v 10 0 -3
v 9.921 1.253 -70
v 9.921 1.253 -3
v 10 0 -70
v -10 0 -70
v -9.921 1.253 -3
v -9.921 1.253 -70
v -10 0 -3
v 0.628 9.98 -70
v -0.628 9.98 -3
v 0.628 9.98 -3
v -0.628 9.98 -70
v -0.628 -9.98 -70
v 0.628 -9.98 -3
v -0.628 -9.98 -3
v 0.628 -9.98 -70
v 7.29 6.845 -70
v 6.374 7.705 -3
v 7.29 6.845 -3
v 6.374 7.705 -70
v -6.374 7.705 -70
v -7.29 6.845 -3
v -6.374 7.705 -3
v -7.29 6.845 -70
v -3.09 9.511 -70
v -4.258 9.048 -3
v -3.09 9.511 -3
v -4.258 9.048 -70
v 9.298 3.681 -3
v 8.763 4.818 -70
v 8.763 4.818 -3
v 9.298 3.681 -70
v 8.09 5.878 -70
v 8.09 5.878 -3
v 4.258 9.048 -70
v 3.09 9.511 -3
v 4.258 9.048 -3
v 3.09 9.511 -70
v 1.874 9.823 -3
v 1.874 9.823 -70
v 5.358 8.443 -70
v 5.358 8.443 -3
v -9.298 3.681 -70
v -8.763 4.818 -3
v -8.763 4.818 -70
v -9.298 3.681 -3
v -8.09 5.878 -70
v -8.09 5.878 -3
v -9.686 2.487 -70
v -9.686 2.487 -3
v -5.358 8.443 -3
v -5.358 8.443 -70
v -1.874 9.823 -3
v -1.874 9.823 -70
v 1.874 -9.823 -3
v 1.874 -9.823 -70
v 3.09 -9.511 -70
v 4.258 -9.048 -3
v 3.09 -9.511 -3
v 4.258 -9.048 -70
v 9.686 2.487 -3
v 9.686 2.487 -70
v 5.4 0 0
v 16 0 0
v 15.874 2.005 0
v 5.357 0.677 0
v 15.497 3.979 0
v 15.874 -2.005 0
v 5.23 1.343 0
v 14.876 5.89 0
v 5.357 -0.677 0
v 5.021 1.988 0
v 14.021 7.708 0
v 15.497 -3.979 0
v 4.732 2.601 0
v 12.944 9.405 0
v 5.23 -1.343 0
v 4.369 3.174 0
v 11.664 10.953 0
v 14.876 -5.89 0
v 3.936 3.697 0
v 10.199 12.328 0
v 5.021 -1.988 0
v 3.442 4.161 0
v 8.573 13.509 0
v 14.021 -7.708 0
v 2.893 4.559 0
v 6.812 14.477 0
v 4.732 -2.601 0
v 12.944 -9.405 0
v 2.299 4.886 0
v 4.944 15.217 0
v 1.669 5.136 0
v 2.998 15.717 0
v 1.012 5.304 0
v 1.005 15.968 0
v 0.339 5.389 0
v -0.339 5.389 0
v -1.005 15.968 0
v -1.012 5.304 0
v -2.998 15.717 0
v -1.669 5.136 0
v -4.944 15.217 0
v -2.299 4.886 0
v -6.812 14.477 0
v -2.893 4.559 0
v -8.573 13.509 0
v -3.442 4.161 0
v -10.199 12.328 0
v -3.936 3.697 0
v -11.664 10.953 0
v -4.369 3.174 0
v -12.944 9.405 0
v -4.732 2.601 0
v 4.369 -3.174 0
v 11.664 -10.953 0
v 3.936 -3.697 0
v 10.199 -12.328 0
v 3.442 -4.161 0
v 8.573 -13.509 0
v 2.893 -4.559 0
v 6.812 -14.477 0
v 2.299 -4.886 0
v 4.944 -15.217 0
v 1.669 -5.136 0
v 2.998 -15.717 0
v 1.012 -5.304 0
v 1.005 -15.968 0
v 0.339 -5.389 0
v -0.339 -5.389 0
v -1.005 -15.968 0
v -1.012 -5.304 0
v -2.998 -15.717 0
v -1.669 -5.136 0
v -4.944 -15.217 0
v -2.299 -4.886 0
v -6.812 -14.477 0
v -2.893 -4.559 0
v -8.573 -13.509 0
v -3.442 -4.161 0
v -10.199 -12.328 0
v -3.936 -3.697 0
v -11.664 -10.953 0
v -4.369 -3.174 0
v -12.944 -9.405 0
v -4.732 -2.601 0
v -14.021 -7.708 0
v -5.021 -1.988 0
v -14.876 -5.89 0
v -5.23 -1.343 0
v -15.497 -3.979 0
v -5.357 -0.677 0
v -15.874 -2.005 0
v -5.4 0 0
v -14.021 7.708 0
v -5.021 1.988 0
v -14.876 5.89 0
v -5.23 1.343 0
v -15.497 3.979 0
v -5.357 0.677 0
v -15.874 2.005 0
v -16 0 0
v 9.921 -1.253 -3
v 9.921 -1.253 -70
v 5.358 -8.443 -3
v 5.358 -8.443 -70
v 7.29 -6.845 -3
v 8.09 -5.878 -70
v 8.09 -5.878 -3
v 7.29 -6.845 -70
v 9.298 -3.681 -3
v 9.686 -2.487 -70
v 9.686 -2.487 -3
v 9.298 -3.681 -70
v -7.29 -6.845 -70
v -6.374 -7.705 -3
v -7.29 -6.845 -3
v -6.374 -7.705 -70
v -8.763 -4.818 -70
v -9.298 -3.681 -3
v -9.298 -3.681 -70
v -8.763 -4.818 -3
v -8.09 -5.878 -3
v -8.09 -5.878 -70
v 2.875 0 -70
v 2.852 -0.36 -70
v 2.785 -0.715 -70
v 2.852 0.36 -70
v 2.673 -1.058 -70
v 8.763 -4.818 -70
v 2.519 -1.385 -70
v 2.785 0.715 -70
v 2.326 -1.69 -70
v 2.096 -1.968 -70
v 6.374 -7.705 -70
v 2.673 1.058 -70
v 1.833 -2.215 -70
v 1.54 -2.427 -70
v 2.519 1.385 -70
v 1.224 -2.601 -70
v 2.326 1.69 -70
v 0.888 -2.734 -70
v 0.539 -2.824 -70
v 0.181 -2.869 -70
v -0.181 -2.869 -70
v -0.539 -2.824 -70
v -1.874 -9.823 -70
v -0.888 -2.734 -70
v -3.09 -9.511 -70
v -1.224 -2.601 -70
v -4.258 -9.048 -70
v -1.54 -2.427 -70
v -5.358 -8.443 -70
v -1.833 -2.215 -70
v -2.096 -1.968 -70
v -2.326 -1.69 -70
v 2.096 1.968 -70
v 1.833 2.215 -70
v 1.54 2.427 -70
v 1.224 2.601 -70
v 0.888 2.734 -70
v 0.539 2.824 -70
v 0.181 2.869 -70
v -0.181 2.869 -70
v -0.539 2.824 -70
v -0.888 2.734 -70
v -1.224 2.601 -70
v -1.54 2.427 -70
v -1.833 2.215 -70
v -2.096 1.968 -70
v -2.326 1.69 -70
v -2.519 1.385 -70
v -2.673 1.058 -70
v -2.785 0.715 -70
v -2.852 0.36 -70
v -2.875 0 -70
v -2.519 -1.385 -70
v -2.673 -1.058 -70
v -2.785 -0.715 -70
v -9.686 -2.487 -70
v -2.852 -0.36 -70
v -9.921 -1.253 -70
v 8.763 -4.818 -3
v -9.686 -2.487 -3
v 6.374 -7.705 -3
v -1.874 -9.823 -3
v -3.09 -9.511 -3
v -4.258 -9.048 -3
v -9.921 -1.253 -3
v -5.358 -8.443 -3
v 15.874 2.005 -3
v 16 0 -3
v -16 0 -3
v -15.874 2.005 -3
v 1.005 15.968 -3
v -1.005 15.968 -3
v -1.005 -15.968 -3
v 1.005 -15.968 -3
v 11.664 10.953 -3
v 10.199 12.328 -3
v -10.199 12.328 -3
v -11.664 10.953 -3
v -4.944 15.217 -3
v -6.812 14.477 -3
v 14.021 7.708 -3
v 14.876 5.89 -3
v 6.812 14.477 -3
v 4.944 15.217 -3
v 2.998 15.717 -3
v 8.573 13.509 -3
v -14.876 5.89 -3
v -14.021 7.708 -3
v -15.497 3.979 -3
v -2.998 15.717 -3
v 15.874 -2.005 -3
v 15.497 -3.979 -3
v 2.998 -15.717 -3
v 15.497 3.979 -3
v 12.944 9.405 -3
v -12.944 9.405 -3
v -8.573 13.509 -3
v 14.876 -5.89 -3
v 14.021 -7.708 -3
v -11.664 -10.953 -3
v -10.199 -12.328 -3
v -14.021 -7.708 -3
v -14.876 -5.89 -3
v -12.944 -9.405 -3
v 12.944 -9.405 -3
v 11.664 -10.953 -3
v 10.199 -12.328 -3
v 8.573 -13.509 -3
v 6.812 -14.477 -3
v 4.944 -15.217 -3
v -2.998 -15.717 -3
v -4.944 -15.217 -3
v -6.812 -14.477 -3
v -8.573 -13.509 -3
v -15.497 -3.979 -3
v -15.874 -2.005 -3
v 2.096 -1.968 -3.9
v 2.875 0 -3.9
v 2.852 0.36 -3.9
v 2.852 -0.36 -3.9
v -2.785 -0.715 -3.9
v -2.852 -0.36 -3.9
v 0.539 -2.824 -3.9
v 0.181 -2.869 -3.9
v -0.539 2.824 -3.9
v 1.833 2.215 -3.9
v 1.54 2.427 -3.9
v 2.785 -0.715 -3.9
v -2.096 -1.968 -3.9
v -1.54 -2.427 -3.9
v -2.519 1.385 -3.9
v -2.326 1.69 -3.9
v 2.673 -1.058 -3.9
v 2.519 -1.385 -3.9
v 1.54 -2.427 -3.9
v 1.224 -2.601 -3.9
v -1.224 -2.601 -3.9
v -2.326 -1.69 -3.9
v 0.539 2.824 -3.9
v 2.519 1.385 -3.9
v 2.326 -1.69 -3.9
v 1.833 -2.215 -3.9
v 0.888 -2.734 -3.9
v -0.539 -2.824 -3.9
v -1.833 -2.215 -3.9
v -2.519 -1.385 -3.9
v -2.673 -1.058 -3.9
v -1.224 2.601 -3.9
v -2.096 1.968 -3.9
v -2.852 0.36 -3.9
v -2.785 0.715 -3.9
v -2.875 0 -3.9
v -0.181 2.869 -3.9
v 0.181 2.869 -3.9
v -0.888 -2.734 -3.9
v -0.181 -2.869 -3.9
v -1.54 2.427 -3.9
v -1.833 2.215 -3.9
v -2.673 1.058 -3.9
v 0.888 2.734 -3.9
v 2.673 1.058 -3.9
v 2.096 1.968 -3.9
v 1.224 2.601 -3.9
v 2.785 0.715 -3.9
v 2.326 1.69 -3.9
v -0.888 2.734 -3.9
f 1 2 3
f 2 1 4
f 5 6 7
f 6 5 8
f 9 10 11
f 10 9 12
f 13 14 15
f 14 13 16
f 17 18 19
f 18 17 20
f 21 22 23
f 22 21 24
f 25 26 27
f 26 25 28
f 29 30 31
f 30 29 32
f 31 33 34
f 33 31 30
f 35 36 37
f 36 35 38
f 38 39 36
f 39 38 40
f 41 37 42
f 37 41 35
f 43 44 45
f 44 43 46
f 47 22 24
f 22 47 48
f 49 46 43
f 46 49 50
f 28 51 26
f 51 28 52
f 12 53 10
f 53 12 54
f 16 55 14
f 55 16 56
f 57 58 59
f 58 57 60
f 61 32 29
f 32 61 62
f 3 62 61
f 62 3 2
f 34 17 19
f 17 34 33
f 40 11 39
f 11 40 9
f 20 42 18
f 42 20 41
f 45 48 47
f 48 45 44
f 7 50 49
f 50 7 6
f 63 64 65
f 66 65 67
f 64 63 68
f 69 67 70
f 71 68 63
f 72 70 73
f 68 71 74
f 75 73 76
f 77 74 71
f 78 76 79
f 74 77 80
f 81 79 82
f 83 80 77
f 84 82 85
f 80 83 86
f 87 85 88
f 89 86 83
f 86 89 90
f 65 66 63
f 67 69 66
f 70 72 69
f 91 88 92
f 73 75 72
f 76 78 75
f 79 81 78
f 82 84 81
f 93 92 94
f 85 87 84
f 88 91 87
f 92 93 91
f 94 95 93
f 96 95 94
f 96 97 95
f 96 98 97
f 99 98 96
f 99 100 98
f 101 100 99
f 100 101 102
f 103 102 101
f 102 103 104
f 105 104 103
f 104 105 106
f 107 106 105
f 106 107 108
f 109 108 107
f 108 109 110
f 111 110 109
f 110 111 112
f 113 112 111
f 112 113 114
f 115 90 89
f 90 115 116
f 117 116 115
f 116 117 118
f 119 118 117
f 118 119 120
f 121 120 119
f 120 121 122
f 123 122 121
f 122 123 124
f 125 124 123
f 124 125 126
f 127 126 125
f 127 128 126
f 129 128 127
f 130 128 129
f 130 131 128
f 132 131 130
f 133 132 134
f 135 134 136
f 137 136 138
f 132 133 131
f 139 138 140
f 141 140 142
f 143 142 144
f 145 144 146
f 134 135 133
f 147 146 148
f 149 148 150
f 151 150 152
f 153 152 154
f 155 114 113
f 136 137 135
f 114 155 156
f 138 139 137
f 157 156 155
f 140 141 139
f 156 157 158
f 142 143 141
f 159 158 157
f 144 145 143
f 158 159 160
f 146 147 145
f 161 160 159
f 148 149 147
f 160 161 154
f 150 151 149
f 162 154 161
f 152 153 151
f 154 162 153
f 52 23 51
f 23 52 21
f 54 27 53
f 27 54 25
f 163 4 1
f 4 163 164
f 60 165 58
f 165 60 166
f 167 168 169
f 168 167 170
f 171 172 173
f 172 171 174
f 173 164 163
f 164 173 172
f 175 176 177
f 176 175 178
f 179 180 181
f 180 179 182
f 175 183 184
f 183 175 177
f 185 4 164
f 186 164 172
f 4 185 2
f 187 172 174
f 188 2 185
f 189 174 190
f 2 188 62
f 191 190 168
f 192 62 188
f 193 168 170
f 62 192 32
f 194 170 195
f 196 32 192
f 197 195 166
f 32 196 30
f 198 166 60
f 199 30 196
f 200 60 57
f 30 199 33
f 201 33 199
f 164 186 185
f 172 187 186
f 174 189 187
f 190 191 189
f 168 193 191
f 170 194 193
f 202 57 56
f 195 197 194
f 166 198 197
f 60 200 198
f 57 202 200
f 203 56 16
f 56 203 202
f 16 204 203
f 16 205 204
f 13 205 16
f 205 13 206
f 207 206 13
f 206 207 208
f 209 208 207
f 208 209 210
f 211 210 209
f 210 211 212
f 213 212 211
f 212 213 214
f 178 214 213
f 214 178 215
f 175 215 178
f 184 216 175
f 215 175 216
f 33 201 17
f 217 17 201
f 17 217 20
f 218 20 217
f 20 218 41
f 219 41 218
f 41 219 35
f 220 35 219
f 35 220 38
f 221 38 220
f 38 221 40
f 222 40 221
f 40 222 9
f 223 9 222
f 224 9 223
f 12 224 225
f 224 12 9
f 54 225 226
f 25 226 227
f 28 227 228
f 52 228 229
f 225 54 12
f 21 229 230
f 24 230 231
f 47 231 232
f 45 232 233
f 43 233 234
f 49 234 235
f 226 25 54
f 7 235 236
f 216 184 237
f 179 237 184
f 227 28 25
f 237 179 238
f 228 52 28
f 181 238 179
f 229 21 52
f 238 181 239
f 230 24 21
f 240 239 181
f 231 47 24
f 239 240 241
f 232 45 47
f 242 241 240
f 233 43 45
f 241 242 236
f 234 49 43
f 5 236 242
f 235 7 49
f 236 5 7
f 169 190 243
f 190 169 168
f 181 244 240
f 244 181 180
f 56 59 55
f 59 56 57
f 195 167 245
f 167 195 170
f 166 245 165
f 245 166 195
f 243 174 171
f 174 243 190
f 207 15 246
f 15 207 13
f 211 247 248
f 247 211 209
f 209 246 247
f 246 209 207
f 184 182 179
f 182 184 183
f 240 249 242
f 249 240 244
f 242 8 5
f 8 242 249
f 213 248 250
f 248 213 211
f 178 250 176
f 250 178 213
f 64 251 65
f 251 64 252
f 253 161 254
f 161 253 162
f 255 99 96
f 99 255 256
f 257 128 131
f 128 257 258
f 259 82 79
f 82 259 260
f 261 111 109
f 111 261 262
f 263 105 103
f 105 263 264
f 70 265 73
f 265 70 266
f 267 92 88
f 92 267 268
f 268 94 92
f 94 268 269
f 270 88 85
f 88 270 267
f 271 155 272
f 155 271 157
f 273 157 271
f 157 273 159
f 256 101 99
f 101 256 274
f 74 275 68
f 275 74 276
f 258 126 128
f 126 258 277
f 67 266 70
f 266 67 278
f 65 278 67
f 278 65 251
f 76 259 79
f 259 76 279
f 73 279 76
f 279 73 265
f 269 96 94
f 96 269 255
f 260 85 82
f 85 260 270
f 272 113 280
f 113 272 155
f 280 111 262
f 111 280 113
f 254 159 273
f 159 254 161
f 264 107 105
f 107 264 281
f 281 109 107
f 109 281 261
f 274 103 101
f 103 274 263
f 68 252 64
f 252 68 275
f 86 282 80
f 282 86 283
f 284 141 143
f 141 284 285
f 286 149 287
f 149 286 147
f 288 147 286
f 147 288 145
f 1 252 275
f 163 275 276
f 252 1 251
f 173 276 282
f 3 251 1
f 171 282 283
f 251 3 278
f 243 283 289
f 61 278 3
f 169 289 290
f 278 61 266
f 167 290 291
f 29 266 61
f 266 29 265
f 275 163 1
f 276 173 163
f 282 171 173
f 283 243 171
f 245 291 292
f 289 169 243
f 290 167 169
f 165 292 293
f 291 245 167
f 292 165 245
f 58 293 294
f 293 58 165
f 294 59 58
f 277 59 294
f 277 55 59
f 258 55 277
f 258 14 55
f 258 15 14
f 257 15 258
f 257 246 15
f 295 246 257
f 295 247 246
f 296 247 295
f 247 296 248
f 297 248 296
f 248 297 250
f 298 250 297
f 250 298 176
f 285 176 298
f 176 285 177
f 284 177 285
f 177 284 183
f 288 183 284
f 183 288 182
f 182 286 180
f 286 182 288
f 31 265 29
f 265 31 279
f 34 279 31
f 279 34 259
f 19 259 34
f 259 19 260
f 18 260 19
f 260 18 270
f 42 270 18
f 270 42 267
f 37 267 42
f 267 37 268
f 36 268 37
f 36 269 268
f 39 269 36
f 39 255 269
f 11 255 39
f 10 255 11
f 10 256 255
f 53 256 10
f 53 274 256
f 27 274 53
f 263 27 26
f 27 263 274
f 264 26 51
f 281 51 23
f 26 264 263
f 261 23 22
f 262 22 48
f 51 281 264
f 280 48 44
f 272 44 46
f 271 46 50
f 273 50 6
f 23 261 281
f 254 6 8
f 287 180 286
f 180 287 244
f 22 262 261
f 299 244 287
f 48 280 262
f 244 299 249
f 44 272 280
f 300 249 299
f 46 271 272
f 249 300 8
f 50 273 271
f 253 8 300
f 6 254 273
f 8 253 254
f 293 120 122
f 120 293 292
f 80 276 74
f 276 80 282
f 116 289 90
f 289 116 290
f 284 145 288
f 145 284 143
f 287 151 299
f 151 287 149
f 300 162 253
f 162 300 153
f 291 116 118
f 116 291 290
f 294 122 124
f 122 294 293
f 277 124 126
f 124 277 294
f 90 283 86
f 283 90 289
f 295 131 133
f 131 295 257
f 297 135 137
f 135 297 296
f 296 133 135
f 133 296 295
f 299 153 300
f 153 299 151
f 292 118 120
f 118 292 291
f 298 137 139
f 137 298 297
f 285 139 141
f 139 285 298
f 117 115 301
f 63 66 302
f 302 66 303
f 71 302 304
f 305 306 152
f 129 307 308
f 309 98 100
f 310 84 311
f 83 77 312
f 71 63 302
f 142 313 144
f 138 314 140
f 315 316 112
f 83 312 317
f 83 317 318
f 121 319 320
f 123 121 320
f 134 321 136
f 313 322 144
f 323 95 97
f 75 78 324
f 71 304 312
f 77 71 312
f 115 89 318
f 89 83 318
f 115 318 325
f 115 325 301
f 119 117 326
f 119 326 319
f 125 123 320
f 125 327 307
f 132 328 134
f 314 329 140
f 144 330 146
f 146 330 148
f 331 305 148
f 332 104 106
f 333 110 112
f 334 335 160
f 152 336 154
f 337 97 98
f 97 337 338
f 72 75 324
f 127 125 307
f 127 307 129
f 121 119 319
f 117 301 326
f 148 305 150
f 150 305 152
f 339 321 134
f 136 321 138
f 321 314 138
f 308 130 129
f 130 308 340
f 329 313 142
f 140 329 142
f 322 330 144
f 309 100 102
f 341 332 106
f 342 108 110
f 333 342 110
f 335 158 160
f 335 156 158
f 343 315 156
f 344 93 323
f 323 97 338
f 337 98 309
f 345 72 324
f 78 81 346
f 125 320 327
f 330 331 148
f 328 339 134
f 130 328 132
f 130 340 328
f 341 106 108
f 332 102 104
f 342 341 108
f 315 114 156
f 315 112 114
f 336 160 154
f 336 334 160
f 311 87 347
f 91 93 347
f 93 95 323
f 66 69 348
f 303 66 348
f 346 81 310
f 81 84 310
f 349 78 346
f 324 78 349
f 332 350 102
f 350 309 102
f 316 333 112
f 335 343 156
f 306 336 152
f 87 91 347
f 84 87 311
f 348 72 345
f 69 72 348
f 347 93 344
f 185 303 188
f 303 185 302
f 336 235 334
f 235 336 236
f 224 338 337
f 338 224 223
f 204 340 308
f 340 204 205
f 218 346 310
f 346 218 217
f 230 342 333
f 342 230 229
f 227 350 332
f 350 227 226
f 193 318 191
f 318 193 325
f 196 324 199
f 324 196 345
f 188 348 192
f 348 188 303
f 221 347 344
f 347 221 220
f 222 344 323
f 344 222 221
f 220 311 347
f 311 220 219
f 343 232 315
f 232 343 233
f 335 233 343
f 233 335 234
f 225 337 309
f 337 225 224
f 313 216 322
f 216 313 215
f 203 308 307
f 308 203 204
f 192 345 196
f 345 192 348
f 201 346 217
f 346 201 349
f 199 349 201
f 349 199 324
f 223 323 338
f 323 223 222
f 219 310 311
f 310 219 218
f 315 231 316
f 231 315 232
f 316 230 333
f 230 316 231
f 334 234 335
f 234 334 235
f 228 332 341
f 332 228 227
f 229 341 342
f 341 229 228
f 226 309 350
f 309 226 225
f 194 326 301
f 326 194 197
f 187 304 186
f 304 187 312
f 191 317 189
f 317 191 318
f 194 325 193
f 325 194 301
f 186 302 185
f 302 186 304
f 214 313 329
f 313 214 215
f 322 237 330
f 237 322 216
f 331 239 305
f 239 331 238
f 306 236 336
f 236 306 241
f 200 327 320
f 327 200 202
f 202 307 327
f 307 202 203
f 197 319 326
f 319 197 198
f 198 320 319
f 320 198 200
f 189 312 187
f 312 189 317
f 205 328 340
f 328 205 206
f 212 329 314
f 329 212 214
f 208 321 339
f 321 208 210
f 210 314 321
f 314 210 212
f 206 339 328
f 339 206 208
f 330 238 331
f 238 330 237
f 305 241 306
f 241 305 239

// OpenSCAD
$fn = 50;


difference() {
	union() {
		translate(v = [0, 0, -70.0000000000]) {
			cylinder(h = 70, r = 10.0000000000);
		}
		translate(v = [0, 0, -3.0000000000]) {
			cylinder(h = 3, r = 16.0000000000);
		}
	}
	union() {
		translate(v = [0, 0, 0]) {
			rotate(a = [0, 0, 0]) {
				difference() {
					union() {
						#translate(v = [0, 0, -70.0000000000]) {
							cylinder(h = 70, r = 2.6000000000);
						}
						#translate(v = [0, 0, -3.9000000000]) {
							cylinder(h = 3.9000000000, r1 = 2.8750000000, r2 = 5.4000000000);
						}
						#translate(v = [0, 0, -70.0000000000]) {
							cylinder(h = 70, r = 2.8750000000);
						}
						#translate(v = [0, 0, -70.0000000000]) {
							cylinder(h = 70, r = 2.6000000000);
						}
					}
					union();
				}
			}
		}
	}
}
